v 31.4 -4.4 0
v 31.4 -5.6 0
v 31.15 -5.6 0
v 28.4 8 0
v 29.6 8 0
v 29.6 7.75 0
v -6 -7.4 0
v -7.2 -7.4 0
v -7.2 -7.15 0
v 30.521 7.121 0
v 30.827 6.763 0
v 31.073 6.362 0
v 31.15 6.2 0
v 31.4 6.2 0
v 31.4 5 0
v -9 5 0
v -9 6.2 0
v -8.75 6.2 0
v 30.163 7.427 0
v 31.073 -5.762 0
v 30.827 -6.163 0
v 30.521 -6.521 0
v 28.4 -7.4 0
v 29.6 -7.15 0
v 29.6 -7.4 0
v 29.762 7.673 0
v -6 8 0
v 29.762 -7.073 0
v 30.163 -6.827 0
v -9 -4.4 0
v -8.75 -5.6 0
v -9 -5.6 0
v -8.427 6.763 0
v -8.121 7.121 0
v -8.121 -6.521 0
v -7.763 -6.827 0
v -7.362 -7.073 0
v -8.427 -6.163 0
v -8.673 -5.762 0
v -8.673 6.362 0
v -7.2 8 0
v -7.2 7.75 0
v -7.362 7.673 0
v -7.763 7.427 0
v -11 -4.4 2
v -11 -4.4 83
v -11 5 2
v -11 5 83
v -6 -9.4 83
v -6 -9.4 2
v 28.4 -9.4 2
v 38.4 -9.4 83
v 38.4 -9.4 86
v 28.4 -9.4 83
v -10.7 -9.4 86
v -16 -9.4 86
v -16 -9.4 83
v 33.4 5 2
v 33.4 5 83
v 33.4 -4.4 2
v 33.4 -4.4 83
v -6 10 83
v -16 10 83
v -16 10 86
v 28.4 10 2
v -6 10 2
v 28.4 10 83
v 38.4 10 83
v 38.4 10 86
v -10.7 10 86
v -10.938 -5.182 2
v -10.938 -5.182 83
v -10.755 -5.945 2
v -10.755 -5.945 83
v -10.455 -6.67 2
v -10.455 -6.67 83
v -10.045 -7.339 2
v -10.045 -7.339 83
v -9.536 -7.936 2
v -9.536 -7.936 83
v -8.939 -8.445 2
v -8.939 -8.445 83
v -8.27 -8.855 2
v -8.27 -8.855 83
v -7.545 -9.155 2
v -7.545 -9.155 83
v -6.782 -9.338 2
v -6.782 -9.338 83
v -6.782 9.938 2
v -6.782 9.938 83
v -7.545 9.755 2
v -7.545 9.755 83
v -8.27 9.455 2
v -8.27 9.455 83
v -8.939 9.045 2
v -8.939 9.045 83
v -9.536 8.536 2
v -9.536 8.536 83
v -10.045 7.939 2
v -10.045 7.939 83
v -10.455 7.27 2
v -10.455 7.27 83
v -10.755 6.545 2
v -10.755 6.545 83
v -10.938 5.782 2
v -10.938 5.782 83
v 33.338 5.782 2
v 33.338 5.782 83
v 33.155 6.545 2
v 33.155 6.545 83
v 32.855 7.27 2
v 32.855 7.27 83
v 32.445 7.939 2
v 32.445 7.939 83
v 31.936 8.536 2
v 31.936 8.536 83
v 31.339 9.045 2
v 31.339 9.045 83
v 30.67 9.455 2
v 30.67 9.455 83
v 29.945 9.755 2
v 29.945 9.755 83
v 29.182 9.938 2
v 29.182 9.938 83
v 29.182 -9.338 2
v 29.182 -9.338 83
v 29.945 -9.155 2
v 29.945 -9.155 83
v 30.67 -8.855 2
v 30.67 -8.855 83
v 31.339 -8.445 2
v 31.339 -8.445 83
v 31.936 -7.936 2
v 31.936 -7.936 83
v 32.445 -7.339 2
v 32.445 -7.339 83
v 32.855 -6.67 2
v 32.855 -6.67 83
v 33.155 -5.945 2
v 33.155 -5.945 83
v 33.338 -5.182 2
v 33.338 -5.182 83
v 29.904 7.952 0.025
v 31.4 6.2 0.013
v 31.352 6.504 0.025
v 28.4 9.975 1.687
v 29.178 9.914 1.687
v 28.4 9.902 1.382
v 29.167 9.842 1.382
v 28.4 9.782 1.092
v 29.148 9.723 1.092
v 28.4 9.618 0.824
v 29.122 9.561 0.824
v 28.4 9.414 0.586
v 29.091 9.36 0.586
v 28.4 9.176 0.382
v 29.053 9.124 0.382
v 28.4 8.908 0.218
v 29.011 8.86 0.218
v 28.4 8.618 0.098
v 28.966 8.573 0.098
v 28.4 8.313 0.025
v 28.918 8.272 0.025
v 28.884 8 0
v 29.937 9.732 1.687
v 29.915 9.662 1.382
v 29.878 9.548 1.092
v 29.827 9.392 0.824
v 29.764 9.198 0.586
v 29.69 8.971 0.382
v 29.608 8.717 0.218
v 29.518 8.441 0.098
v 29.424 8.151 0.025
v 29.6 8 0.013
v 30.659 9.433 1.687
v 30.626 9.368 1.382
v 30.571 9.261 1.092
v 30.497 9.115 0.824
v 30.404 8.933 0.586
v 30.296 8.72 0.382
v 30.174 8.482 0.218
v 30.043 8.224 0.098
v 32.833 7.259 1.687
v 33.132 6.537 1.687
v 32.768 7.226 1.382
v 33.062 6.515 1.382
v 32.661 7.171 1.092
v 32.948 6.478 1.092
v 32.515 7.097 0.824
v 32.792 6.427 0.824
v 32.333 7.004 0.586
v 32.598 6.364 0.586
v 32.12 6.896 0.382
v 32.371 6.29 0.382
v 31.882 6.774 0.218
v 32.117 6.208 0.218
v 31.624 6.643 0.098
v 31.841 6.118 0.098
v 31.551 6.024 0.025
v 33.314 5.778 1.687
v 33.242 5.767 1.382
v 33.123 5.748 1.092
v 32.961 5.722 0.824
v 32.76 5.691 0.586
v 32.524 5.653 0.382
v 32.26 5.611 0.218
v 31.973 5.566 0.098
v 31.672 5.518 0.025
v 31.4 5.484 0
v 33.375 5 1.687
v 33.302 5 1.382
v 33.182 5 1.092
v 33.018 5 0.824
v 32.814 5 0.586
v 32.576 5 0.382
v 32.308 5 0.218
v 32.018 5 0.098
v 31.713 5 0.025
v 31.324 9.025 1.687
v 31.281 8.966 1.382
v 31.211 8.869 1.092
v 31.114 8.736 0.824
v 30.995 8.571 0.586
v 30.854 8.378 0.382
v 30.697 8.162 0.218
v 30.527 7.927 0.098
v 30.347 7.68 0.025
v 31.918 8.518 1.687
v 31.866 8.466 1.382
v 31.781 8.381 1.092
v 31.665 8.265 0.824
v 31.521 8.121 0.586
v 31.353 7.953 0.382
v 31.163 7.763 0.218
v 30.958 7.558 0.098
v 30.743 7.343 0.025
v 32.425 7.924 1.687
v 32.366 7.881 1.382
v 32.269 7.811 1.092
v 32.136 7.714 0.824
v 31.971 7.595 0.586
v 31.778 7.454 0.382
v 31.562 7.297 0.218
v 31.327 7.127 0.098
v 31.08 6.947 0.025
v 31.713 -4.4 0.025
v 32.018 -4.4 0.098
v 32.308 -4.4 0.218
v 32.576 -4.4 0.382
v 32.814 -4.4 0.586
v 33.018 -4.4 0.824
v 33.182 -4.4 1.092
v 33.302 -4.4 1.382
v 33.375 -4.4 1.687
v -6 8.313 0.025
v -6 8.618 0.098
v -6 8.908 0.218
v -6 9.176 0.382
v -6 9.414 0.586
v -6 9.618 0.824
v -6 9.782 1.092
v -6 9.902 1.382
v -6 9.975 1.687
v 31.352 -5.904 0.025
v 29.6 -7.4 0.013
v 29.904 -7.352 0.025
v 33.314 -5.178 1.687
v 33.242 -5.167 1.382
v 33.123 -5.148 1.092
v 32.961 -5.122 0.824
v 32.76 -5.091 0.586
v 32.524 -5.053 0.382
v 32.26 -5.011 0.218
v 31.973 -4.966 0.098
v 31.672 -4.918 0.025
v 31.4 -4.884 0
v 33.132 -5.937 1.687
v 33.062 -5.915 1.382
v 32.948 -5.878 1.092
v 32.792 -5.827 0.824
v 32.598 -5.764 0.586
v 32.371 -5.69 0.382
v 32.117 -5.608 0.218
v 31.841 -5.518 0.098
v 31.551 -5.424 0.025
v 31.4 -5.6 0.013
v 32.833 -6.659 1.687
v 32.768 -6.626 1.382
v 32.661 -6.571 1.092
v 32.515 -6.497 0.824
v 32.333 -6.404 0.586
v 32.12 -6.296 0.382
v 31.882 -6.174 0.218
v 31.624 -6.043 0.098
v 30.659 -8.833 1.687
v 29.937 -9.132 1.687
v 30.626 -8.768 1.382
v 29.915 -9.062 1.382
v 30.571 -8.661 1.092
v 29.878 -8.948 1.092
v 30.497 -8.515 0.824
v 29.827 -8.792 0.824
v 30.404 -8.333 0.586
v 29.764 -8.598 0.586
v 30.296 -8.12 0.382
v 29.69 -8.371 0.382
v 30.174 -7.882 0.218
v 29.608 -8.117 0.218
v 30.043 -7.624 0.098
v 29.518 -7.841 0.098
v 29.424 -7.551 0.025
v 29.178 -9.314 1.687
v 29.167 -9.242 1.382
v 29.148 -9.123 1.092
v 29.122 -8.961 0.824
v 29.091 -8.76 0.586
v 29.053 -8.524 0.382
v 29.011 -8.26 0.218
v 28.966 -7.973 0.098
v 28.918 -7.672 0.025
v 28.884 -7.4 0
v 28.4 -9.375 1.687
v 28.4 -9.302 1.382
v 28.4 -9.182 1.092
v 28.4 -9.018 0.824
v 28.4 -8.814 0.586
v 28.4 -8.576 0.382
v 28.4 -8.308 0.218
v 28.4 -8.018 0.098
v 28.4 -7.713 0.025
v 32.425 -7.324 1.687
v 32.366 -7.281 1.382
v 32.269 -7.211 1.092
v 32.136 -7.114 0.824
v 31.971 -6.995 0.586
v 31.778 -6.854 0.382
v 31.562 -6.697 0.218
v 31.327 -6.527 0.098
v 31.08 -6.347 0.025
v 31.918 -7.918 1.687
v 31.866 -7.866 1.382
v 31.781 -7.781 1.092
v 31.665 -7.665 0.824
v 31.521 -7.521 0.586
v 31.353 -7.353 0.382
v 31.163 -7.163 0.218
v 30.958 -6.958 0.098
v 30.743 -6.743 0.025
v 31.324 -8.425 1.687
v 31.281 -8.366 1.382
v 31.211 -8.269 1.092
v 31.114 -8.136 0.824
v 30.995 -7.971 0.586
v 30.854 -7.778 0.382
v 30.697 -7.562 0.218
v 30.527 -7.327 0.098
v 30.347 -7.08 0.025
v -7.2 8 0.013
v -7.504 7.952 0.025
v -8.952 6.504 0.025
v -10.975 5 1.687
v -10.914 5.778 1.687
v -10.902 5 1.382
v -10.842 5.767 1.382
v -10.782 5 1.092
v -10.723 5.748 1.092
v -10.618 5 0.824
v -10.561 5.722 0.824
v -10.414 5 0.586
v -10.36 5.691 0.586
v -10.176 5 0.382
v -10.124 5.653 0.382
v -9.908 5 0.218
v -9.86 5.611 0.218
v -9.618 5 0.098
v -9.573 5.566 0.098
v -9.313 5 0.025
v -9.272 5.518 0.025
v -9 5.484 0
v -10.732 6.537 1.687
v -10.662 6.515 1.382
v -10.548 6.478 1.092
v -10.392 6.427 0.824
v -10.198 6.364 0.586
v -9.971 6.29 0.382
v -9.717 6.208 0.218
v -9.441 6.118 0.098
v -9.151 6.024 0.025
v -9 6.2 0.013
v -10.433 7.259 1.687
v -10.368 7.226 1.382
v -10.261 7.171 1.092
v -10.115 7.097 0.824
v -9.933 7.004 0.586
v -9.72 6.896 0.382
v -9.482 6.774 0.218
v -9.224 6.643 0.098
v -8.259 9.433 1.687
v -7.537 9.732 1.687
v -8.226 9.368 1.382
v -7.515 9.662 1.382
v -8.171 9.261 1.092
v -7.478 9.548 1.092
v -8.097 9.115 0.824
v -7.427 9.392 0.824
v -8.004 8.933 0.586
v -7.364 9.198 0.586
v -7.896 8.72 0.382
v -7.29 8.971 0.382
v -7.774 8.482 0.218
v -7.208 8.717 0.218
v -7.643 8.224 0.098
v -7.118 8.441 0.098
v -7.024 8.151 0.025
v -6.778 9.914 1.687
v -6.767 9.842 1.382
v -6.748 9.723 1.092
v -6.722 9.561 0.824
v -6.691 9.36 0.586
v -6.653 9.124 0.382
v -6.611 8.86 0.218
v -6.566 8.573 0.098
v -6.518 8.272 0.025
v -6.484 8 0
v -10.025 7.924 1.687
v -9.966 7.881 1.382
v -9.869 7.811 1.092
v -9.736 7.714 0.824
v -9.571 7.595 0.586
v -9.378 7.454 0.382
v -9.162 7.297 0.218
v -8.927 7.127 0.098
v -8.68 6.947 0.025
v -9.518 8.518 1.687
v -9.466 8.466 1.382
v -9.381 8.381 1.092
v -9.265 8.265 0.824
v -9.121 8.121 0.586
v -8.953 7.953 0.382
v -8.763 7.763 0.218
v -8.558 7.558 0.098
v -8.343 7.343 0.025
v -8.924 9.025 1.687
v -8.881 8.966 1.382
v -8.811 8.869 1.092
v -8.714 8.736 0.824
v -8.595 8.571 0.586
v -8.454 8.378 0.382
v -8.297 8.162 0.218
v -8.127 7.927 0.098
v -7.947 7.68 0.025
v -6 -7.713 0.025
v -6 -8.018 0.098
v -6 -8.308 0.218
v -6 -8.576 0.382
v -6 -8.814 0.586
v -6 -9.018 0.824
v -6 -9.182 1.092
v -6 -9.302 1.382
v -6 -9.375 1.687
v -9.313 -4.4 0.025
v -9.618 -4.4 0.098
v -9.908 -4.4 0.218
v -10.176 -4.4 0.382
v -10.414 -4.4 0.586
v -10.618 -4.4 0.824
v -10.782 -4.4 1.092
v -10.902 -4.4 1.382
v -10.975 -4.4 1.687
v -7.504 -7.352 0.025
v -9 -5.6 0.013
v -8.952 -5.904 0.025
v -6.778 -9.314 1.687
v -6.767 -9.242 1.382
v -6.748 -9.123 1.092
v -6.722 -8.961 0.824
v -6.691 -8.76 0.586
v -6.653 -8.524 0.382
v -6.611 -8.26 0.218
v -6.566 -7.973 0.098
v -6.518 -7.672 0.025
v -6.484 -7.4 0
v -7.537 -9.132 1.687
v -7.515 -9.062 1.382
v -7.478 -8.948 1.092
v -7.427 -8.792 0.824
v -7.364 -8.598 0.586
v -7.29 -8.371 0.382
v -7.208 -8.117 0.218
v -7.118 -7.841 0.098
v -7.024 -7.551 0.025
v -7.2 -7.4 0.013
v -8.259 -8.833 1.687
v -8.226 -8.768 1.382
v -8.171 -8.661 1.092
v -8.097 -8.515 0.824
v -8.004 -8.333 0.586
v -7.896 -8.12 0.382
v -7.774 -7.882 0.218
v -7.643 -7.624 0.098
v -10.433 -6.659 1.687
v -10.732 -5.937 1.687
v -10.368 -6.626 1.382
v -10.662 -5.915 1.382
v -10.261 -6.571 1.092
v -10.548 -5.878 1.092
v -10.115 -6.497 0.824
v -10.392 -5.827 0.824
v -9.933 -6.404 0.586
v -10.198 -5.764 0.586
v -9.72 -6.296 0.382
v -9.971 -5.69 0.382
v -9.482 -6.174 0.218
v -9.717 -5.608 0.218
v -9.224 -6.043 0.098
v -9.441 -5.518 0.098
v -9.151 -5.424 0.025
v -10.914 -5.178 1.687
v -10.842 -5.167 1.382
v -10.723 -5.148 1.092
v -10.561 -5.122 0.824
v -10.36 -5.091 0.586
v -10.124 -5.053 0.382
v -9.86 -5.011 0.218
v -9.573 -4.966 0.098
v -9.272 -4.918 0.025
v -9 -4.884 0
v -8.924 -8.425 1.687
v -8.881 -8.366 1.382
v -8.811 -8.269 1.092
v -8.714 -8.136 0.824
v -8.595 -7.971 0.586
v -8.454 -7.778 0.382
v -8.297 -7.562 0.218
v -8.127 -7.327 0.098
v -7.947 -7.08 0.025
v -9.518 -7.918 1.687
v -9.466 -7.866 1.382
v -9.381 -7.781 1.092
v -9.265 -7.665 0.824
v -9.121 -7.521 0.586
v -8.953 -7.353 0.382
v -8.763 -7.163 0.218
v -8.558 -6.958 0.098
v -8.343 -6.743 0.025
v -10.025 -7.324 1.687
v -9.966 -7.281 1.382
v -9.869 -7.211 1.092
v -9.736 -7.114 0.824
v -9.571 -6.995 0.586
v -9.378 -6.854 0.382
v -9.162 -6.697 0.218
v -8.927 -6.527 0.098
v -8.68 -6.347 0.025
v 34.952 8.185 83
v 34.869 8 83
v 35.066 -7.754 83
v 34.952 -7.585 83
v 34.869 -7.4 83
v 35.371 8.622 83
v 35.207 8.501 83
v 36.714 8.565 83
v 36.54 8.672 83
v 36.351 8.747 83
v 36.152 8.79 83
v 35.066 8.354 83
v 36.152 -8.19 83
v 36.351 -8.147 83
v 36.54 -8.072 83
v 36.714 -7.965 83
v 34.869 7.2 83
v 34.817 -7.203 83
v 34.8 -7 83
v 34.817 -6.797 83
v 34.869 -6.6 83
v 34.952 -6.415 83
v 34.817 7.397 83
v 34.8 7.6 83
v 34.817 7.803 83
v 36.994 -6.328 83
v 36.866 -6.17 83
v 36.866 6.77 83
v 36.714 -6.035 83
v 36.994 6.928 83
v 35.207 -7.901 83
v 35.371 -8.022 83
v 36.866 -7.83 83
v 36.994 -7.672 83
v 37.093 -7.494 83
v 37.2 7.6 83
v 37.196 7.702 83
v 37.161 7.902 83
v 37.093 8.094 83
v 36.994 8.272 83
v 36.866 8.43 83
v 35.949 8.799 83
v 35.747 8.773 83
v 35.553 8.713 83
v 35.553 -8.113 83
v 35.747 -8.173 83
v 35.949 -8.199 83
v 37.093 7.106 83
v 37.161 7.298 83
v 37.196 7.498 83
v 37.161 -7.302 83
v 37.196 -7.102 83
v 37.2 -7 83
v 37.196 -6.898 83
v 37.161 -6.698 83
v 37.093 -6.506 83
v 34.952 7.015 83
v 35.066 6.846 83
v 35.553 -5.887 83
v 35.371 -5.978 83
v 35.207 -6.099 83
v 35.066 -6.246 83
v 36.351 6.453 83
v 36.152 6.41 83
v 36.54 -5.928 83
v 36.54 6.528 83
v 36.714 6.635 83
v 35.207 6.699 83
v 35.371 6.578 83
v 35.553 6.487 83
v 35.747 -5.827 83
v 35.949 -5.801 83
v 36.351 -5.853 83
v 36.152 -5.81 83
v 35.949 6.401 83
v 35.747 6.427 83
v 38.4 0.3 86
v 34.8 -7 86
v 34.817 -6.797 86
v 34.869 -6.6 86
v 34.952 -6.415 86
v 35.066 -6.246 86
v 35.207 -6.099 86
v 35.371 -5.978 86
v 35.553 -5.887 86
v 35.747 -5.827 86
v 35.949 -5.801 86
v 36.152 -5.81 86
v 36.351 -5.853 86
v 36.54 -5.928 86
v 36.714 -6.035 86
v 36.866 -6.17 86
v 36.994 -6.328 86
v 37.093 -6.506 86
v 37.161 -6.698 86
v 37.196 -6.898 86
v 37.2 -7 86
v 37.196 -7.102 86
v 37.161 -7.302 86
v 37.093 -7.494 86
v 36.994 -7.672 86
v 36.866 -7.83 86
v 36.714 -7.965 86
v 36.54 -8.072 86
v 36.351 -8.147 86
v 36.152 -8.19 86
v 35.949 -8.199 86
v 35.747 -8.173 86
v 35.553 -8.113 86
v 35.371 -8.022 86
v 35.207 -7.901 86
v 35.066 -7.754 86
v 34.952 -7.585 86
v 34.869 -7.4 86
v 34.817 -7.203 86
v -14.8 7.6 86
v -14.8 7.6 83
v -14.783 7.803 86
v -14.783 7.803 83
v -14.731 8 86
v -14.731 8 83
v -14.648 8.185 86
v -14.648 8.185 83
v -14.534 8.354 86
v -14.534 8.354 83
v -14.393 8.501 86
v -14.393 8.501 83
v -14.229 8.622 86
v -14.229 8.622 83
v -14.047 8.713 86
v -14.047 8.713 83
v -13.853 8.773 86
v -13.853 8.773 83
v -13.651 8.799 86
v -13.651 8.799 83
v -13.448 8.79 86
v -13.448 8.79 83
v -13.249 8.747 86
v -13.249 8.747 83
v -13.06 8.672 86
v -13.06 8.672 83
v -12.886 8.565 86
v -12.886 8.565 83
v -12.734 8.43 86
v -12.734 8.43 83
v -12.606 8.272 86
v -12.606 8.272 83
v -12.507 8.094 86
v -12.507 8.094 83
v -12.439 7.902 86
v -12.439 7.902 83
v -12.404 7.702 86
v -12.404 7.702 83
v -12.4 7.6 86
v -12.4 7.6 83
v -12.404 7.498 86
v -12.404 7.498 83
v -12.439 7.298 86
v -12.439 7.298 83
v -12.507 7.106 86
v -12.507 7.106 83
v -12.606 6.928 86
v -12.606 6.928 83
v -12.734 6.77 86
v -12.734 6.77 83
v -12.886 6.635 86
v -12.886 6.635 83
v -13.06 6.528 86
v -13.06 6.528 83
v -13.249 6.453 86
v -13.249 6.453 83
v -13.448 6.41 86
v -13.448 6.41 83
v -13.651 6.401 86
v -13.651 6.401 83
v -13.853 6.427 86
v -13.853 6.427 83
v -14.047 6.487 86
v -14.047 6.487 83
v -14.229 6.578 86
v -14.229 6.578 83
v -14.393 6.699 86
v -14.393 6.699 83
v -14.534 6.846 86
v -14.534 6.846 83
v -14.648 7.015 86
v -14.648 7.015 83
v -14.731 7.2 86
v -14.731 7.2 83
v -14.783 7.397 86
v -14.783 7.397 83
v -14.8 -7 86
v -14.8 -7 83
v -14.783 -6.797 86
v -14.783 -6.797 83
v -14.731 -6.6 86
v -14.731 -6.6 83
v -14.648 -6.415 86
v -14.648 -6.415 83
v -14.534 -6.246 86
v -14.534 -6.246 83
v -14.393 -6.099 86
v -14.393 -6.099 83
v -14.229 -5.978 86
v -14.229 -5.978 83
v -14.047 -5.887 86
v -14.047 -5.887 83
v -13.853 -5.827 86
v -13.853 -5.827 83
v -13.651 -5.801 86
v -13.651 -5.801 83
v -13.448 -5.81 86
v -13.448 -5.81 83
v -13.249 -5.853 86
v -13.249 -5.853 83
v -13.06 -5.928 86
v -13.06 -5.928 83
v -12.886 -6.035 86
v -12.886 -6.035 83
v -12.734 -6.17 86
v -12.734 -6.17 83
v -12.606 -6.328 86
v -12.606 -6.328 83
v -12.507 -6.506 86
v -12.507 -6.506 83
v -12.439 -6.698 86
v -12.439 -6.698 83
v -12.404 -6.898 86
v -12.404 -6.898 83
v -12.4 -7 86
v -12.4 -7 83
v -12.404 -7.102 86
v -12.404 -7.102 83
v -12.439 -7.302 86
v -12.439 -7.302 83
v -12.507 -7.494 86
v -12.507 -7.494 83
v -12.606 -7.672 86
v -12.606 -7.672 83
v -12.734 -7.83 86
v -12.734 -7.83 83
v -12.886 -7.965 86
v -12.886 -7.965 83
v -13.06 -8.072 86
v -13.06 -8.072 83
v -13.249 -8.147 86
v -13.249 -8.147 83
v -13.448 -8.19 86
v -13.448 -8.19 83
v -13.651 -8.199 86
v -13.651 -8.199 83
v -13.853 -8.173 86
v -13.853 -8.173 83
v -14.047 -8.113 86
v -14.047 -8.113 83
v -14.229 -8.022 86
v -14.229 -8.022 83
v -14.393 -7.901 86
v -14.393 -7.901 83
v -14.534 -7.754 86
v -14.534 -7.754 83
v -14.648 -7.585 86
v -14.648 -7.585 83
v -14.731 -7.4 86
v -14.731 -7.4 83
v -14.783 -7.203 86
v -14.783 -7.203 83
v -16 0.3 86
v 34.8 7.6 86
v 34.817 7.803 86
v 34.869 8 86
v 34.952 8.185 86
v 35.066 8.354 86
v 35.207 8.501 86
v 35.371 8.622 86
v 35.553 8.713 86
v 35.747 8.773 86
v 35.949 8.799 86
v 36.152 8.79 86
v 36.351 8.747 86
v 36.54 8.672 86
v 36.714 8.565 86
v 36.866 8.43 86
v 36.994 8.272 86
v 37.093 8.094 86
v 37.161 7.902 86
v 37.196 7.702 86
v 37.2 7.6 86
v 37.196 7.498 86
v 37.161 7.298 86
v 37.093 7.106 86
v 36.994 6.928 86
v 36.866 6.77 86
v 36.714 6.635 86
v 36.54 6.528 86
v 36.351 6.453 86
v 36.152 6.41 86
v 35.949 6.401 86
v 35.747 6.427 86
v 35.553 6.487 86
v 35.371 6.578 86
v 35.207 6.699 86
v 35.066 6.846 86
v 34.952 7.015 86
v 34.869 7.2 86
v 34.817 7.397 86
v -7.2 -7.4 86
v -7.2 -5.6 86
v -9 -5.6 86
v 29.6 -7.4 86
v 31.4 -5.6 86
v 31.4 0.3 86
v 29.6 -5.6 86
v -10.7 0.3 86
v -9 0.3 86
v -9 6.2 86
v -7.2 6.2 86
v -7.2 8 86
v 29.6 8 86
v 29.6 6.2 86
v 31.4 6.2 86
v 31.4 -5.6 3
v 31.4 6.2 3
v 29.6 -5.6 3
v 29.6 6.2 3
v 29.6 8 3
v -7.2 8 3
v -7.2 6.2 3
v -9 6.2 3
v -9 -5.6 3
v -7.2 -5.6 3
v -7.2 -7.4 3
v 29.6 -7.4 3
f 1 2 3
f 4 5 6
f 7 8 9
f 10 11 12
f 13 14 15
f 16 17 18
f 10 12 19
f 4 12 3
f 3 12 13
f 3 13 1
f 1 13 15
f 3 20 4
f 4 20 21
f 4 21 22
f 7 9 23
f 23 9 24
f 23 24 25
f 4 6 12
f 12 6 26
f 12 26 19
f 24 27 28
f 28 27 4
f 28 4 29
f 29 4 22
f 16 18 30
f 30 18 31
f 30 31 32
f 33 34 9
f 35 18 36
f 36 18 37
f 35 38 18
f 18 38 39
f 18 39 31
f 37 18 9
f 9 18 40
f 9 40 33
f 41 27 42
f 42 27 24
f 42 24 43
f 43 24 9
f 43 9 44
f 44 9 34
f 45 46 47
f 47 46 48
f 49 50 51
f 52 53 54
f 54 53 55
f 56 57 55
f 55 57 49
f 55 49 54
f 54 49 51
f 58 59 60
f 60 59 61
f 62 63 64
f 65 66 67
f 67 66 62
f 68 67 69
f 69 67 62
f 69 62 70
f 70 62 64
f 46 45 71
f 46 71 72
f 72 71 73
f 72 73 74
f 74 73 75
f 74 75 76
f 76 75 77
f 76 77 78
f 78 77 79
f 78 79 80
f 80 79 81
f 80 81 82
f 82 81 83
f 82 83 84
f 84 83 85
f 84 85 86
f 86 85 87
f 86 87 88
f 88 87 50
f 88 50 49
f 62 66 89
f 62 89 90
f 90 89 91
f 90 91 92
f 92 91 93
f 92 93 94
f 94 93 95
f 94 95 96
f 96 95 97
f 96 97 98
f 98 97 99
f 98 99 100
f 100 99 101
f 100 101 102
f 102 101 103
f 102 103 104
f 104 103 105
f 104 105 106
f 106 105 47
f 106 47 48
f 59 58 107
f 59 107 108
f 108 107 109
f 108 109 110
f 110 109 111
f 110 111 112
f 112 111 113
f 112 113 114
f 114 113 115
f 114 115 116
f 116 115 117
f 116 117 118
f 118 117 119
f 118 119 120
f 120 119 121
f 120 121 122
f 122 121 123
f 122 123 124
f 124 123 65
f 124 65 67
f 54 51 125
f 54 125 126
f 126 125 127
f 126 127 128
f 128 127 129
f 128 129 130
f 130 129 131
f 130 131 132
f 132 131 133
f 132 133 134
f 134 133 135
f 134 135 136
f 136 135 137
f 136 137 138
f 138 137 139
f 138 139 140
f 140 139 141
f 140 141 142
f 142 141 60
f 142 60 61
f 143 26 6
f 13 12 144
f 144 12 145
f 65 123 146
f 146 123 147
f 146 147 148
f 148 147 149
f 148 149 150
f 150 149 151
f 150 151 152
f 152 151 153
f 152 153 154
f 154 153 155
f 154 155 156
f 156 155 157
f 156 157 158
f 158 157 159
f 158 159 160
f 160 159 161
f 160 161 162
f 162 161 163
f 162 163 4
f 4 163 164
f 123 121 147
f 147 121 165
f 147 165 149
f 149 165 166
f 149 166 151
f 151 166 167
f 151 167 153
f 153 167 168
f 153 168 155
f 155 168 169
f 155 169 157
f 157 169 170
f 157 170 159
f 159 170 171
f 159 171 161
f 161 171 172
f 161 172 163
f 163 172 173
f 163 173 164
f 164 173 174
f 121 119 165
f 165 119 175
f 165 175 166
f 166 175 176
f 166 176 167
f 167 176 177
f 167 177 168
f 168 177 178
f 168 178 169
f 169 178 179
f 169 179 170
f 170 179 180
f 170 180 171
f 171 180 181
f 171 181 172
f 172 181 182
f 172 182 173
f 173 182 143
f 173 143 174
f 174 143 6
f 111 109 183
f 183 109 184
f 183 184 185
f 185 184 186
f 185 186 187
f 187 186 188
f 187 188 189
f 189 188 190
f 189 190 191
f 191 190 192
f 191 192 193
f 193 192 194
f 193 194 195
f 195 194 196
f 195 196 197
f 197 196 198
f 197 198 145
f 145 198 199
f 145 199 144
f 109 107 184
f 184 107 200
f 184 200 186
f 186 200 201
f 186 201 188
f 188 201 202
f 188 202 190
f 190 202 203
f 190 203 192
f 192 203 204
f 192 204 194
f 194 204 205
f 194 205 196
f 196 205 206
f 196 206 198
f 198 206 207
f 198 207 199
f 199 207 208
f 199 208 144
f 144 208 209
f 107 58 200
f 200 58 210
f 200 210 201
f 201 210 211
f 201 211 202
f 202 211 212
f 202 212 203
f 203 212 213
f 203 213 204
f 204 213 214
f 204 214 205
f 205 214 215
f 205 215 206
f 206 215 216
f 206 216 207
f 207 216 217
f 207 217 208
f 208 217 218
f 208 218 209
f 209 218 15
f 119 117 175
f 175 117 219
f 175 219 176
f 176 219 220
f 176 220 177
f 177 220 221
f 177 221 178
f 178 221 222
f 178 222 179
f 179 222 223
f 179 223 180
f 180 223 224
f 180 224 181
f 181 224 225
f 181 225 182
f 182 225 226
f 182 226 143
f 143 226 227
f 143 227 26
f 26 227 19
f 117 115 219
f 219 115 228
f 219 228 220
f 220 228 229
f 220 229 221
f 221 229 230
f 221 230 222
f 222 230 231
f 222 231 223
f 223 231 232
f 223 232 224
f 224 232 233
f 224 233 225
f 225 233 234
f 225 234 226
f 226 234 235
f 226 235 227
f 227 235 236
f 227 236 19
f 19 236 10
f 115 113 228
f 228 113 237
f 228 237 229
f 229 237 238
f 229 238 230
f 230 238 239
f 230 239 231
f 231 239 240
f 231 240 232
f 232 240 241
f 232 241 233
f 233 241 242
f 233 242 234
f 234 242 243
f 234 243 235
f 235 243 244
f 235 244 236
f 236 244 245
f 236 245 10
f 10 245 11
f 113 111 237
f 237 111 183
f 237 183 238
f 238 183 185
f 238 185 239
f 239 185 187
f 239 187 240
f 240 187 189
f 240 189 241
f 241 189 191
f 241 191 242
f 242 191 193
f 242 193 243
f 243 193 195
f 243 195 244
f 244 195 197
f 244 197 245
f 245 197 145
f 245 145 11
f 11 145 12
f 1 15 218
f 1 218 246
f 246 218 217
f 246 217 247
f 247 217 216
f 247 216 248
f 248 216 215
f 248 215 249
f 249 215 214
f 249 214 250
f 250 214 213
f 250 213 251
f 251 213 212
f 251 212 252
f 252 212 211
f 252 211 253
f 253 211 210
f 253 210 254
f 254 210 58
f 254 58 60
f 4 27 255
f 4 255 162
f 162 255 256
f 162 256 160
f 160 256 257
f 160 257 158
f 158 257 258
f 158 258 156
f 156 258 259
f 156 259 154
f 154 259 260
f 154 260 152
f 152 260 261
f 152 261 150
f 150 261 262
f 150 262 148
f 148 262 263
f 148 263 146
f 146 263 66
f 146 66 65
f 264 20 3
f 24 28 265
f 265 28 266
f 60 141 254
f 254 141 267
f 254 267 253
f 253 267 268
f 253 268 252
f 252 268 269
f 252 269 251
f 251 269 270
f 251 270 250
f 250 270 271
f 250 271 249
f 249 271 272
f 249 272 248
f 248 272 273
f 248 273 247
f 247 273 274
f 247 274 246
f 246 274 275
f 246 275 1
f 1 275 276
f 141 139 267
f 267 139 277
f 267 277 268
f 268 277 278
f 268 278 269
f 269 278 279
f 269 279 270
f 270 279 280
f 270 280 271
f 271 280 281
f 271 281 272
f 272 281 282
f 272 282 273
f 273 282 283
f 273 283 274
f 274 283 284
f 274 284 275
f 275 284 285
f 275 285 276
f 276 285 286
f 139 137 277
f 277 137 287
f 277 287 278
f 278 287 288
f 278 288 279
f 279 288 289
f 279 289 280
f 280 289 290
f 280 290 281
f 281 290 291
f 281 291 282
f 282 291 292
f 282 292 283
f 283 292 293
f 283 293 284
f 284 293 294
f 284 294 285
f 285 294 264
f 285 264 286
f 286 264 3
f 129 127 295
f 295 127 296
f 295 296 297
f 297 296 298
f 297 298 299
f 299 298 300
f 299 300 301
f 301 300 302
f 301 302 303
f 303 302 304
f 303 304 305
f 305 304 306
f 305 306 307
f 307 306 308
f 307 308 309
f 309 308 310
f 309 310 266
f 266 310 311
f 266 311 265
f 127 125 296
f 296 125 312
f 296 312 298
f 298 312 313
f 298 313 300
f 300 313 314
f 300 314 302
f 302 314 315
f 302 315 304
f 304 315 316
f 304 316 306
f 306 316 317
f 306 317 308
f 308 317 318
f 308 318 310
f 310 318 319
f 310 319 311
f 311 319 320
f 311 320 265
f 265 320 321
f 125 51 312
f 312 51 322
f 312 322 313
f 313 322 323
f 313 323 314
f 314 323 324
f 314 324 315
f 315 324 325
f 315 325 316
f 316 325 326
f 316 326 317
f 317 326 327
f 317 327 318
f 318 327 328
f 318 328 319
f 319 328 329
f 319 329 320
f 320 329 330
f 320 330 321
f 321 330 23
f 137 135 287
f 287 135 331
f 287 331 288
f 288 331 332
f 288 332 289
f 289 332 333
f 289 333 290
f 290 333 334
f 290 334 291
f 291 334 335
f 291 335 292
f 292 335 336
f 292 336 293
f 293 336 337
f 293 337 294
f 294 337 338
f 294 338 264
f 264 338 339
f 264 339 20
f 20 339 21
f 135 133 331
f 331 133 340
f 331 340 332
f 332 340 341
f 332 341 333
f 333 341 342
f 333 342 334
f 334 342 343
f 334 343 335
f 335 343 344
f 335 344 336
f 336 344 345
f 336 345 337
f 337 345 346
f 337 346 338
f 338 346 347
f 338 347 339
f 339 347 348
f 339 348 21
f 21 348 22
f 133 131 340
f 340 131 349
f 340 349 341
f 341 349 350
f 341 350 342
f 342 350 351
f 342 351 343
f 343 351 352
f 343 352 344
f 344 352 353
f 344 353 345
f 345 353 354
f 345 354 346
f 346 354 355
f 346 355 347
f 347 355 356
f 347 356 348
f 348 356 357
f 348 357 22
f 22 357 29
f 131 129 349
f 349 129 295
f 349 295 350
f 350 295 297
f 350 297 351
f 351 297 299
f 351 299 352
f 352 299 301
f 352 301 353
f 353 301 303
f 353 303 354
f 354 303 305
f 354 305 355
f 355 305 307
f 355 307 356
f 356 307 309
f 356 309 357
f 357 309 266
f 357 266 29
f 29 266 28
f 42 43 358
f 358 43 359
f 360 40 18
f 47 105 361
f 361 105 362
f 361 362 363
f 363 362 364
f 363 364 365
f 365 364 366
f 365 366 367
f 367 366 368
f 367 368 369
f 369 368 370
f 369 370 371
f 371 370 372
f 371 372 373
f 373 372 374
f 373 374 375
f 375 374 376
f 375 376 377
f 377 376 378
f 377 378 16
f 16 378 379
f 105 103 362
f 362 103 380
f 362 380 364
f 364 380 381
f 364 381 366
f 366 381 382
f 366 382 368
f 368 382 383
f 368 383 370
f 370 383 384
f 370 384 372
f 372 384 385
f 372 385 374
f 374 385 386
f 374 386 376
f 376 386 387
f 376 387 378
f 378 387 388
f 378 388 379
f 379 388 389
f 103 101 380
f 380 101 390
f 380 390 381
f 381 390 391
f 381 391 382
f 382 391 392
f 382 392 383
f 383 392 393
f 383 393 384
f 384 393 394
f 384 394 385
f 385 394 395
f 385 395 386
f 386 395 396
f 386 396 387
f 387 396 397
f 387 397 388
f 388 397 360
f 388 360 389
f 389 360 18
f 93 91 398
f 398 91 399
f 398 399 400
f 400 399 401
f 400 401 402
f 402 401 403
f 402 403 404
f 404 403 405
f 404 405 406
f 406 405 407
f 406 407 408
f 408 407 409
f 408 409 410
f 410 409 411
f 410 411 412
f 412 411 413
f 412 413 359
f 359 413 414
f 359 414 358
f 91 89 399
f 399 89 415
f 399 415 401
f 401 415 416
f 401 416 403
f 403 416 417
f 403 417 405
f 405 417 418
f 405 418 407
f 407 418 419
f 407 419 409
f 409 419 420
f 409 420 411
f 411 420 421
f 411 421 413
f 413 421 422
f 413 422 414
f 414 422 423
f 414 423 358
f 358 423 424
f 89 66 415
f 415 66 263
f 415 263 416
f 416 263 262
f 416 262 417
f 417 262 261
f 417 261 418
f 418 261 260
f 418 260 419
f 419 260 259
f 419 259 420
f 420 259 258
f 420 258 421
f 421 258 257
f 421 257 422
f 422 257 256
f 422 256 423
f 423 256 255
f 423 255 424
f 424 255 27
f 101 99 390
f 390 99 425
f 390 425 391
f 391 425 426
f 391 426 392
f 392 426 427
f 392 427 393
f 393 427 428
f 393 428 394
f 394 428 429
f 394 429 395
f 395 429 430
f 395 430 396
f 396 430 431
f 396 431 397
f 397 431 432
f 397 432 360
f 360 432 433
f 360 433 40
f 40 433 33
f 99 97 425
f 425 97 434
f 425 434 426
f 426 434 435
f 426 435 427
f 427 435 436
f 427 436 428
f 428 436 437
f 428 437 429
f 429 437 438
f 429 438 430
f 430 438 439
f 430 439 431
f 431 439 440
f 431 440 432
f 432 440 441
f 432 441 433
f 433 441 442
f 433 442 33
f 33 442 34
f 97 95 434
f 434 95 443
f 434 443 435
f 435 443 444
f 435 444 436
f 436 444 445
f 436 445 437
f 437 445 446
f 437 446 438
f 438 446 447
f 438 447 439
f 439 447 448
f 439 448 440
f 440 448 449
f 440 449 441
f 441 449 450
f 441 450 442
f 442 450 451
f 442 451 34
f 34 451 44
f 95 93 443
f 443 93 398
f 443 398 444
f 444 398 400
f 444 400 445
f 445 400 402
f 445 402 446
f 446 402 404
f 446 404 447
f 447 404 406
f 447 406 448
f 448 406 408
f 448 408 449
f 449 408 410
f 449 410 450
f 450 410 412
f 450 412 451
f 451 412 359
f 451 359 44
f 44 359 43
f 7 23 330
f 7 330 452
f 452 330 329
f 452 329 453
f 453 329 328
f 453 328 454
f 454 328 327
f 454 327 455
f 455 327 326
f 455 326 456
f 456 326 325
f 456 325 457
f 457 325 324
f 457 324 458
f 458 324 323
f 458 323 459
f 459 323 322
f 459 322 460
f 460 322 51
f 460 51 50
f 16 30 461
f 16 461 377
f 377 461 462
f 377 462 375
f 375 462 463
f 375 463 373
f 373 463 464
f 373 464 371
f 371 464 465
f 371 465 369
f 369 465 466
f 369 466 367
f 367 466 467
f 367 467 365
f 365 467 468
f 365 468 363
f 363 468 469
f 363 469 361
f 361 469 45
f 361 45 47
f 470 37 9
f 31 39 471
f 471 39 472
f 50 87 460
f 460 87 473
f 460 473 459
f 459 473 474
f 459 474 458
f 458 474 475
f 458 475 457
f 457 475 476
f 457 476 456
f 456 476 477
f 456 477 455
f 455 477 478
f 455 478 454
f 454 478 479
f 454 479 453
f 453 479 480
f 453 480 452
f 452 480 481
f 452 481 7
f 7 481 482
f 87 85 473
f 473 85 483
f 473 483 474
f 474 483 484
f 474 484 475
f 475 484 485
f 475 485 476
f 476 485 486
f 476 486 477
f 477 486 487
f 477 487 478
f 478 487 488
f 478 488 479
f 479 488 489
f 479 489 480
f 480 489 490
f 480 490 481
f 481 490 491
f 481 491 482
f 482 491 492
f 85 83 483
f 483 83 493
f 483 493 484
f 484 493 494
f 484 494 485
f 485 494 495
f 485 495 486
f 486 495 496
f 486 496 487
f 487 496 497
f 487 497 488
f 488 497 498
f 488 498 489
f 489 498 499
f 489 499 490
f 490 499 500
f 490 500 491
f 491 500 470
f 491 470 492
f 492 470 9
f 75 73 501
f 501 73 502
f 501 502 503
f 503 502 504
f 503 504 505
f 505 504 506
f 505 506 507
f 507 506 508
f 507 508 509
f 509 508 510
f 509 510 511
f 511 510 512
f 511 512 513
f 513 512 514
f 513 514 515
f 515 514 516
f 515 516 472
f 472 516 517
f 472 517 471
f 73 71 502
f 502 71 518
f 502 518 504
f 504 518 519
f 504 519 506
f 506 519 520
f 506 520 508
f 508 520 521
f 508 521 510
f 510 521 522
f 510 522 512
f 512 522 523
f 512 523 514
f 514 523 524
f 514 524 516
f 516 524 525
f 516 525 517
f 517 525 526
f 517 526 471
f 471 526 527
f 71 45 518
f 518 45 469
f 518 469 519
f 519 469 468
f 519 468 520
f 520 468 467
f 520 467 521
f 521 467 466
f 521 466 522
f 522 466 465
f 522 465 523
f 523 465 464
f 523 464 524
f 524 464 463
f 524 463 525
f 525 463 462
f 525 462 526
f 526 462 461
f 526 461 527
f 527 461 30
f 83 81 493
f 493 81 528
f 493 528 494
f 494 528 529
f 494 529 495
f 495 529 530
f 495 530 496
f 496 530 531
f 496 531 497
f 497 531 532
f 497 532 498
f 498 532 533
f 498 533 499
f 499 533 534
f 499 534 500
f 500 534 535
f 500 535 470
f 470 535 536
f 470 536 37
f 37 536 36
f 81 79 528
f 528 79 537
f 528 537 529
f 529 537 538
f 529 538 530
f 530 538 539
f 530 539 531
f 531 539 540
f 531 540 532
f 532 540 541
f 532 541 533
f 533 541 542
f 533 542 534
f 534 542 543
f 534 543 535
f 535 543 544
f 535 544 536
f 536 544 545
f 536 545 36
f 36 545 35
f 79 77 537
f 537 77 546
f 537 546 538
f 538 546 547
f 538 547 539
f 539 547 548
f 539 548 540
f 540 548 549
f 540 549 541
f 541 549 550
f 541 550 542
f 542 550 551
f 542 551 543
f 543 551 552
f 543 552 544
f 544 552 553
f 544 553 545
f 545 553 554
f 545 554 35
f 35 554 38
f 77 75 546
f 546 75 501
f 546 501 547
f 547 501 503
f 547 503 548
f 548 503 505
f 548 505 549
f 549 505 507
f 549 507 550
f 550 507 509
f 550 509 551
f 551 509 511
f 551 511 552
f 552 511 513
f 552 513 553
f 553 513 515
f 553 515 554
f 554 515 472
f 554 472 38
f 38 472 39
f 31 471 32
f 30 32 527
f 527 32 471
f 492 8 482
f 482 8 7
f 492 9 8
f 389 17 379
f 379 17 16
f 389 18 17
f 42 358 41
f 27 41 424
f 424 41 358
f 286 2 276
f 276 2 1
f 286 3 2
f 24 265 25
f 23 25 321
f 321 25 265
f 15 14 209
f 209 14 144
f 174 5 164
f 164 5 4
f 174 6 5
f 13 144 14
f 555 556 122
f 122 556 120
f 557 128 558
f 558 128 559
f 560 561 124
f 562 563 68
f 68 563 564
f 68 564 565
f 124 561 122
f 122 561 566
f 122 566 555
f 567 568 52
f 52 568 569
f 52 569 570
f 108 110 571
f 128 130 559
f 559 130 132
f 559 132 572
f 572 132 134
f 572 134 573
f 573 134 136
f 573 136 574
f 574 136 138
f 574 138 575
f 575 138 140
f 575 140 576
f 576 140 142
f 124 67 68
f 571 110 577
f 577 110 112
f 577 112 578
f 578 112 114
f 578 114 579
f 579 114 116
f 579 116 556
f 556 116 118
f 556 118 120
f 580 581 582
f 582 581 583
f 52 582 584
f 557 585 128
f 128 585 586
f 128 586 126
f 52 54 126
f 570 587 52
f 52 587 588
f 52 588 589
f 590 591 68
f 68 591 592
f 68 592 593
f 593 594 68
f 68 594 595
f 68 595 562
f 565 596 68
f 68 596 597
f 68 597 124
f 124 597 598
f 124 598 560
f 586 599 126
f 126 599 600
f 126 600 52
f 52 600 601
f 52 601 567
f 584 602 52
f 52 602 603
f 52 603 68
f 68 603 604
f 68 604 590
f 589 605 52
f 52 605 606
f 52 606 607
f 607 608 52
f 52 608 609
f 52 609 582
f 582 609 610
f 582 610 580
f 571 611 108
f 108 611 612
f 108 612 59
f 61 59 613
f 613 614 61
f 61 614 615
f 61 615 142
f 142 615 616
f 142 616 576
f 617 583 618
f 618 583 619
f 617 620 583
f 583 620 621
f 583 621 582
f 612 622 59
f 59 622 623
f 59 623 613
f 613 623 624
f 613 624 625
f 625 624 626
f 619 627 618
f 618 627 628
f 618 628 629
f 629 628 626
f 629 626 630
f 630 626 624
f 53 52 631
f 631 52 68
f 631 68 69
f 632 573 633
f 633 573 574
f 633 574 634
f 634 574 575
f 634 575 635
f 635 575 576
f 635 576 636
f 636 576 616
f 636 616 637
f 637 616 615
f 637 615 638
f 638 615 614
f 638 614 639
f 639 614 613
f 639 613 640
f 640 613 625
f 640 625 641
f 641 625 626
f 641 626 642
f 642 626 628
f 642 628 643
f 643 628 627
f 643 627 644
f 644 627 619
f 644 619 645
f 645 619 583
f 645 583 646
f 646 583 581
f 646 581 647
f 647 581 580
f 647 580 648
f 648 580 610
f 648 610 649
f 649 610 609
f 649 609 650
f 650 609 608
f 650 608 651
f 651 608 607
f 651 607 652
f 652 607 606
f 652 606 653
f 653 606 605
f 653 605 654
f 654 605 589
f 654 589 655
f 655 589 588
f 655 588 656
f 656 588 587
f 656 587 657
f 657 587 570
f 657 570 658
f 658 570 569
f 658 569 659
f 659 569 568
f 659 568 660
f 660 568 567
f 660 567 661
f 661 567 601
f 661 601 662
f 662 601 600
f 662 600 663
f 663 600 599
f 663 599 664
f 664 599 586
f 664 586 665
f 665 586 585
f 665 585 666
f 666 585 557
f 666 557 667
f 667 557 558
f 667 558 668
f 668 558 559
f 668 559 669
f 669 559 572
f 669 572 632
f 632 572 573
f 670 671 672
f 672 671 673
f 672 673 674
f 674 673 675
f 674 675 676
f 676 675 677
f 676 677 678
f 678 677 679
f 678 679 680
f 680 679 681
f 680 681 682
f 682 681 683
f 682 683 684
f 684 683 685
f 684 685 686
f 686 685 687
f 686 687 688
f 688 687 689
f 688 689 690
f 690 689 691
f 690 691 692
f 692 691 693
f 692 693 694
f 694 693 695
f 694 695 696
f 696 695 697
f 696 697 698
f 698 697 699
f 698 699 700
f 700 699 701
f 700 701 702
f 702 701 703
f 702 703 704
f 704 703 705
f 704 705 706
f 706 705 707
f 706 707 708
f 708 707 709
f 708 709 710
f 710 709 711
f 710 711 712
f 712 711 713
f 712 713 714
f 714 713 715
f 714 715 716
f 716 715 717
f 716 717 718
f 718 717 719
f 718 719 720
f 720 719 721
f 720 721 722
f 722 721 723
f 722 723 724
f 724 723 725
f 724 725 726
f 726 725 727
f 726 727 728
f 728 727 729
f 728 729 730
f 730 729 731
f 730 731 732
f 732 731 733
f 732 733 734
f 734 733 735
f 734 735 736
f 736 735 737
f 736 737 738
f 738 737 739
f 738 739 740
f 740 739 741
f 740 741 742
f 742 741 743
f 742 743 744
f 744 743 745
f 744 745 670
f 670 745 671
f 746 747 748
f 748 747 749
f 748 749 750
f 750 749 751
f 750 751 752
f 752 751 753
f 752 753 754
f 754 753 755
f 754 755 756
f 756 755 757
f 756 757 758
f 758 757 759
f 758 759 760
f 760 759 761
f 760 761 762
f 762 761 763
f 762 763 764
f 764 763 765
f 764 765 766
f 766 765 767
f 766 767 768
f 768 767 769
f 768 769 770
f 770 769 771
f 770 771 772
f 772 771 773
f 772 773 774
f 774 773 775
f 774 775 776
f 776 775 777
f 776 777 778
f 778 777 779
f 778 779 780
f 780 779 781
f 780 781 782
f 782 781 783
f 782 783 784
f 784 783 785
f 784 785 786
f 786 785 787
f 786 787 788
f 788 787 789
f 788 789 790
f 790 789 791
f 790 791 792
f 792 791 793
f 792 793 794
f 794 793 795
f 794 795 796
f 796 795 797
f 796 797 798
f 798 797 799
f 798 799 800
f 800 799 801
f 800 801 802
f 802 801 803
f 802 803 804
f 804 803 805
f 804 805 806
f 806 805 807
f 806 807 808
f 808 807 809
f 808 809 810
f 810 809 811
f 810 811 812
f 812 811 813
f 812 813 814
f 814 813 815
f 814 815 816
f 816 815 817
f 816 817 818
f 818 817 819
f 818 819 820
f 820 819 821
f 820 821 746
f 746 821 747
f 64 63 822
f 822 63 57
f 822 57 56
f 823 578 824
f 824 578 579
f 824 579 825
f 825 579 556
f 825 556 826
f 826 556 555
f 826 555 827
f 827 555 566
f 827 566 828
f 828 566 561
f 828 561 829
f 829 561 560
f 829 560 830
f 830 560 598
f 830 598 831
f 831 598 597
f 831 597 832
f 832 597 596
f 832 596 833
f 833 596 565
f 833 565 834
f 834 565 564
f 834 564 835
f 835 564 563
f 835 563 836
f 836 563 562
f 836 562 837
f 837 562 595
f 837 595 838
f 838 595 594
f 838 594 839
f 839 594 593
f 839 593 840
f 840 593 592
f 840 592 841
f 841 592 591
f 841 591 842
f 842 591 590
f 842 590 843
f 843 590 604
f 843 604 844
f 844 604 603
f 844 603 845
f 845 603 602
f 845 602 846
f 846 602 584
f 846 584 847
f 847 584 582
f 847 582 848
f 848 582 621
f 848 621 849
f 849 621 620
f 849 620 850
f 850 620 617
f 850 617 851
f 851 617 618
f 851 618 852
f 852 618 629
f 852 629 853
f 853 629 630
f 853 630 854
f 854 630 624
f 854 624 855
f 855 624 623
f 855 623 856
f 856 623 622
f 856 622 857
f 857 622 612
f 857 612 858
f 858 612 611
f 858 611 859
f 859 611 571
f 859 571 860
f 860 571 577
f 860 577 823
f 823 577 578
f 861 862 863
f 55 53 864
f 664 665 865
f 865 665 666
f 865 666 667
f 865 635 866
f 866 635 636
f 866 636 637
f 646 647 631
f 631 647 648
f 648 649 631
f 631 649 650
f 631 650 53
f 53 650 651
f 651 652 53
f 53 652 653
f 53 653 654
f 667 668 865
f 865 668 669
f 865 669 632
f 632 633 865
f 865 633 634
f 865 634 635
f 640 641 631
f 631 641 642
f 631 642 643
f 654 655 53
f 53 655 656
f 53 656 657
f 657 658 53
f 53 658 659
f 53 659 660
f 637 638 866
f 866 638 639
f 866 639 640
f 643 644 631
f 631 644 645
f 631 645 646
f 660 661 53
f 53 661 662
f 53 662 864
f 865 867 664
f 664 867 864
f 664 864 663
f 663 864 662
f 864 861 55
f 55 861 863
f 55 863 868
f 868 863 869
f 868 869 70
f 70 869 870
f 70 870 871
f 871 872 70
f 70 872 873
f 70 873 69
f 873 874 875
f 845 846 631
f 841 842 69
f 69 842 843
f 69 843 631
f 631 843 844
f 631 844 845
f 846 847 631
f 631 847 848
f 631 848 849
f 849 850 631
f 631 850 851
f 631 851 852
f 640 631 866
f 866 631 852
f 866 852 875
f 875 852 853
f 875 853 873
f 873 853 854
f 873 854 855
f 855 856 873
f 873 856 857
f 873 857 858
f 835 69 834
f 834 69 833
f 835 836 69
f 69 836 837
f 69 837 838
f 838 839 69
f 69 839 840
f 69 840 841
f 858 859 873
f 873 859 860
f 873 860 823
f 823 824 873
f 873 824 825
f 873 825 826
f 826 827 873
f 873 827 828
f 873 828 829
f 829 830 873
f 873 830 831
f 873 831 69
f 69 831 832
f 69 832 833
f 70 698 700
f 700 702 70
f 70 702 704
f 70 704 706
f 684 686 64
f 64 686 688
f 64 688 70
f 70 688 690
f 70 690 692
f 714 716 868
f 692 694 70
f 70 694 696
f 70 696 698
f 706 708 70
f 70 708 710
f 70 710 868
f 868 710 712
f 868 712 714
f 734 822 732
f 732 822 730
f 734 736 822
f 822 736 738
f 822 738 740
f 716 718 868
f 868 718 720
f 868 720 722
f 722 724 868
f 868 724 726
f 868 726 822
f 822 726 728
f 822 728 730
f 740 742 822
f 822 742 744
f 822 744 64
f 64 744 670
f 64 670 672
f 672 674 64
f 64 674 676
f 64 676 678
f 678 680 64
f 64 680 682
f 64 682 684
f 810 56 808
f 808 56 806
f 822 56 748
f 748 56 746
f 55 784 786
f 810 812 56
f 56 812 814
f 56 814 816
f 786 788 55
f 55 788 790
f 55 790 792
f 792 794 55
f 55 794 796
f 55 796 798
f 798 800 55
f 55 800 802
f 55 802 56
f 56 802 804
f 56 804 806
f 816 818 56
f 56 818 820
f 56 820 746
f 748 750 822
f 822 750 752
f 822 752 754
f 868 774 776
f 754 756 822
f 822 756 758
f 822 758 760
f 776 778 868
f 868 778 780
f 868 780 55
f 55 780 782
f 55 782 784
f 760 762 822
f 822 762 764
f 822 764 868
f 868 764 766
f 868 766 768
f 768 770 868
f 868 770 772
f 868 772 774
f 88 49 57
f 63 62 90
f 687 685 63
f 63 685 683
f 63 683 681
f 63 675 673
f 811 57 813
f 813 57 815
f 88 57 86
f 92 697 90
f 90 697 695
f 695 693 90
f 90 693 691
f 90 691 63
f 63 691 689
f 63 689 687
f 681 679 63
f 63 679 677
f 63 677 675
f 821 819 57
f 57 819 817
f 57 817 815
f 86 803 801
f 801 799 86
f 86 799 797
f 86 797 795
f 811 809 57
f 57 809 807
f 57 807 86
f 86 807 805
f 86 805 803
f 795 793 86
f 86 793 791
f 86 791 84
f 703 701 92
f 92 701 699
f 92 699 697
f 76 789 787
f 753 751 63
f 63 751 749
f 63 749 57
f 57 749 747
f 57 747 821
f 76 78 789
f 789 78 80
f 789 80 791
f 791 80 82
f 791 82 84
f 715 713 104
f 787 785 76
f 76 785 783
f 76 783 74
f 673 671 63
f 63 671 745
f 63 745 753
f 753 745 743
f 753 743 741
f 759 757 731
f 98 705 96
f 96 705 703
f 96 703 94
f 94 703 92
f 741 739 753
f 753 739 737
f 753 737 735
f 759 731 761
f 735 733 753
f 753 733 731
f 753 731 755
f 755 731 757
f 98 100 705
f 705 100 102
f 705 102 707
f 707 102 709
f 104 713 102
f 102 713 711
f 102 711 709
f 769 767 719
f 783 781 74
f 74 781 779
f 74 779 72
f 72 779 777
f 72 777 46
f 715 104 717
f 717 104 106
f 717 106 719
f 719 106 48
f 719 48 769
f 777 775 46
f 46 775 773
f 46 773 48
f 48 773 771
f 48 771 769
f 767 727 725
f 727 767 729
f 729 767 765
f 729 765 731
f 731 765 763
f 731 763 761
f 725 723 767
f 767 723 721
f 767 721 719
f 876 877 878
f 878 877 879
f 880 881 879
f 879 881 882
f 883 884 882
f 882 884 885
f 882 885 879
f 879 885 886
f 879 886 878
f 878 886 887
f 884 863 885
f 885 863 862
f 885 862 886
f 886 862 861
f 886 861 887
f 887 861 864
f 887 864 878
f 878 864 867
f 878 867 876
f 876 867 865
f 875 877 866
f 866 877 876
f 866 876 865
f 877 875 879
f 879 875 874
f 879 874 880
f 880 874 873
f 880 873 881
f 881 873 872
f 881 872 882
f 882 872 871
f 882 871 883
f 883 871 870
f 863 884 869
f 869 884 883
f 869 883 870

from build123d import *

# Parameters (mm, degrees)
SKETCH_1_W      = 44.4
SKETCH_1_H      = 19.4
EXTRUDE_1_DEPTH = 83
FILLET_6_R      = 5
FILLET_7_R      = 5
FILLET_8_R      = 5
FILLET_9_R      = 5
FILLET_11_R     = 2
EXTRUDE_2_DEPTH = 3
EXTRUDE_START   = 3
SKETCH_3_R      = 1.2
EXTRUDE_3_DEPTH = 3


with BuildPart() as part:
    # 草图1 → 凸台-拉伸1 (new body)
    with BuildSketch(Plane.XY):
        with Locations((11.2, 0.3)):
            Rectangle(SKETCH_1_W, SKETCH_1_H)
        Polygon((-9, 6.2), (-9, -5.6), (-7.2, -5.6), (-7.2, -7.4), (29.6, -7.4), (29.6, -5.6), (31.4, -5.6), (31.4, 6.2), (29.6, 6.2), (29.6, 8), (-7.2, 8), (-7.2, 6.2), align=None, mode=Mode.SUBTRACT)
    extrude(amount=EXTRUDE_1_DEPTH)

    # 圆角6
    fillet_6_edges = [part.edges().sort_by_distance(p)[0] for p in [
        (-11, -9.4, 41.5),
    ]]
    fillet(fillet_6_edges, radius=FILLET_6_R)

    # 圆角7
    fillet_7_edges = [part.edges().sort_by_distance(p)[0] for p in [
        (-11, 10, 41.5),
    ]]
    fillet(fillet_7_edges, radius=FILLET_7_R)

    # 圆角8
    fillet_8_edges = [part.edges().sort_by_distance(p)[0] for p in [
        (33.4, 10, 41.5),
    ]]
    fillet(fillet_8_edges, radius=FILLET_8_R)

    # 圆角9
    fillet_9_edges = [part.edges().sort_by_distance(p)[0] for p in [
        (33.4, -9.4, 41.5),
    ]]
    fillet(fillet_9_edges, radius=FILLET_9_R)

    # 圆角11
    # the kernel refuses this fillet: 2 mm, written as the material it takes off along each edge
    with BuildSketch(Plane(origin=(28.4, -9.4, 0), x_dir=(0, 1, 0), z_dir=(-1, 0, 0)), Plane(origin=(-6, 10, 0), x_dir=(0, -1, 0), z_dir=(1, 0, 0))) as fillet_11_piece_1:
        with BuildLine():
            CenterArc((FILLET_11_R, -FILLET_11_R), FILLET_11_R, 90, 90)
            Line((0, -FILLET_11_R), (0, 0))
            Line((0, 0), (FILLET_11_R, 0))
        make_face()
    extrude(amount=34.4, mode=Mode.SUBTRACT)
    with BuildSketch(Plane(origin=(-6, -4.4, 0), x_dir=(0, -1, 0), z_dir=(1, 0, 0))) as fillet_11_piece_2:
        with BuildLine():
            CenterArc((5 - FILLET_11_R, -FILLET_11_R), FILLET_11_R, 0, 90)
            Line((5, -FILLET_11_R), (5, 0))
            Line((5, 0), (5 - FILLET_11_R, 0))
        make_face()
    revolve(axis=Axis((-6, -4.4, 0), (0, 0, -1)), revolution_arc=90, mode=Mode.SUBTRACT)
    with BuildSketch(Plane(origin=(-11, -4.4, 0), x_dir=(1, 0, 0), z_dir=(0, 1, 0)), Plane(origin=(33.4, 5, 0), x_dir=(-1, 0, 0), z_dir=(0, -1, 0))) as fillet_11_piece_3:
        with BuildLine():
            CenterArc((FILLET_11_R, -FILLET_11_R), FILLET_11_R, 90, 90)
            Line((0, -FILLET_11_R), (0, 0))
            Line((0, 0), (FILLET_11_R, 0))
        make_face()
    extrude(amount=9.4, mode=Mode.SUBTRACT)
    with BuildSketch(Plane(origin=(-6, 5, 0), x_dir=(-1, 0, 0), z_dir=(0, -1, 0))) as fillet_11_piece_4:
        with BuildLine():
            CenterArc((5 - FILLET_11_R, -FILLET_11_R), FILLET_11_R, 0, 90)
            Line((5, -FILLET_11_R), (5, 0))
            Line((5, 0), (5 - FILLET_11_R, 0))
        make_face()
    revolve(axis=Axis((-6, 5, 0), (0, 0, -1)), revolution_arc=90, mode=Mode.SUBTRACT)
    with BuildSketch(Plane(origin=(28.4, 5, 0), x_dir=(0, 1, 0), z_dir=(-1, 0, 0))) as fillet_11_piece_5:
        with BuildLine():
            CenterArc((5 - FILLET_11_R, -FILLET_11_R), FILLET_11_R, 0, 90)
            Line((5, -FILLET_11_R), (5, 0))
            Line((5, 0), (5 - FILLET_11_R, 0))
        make_face()
    revolve(axis=Axis((28.4, 5, 0), (0, 0, -1)), revolution_arc=90, mode=Mode.SUBTRACT)
    with BuildSketch(Plane(origin=(28.4, -4.4, 0), x_dir=(1, 0, 0), z_dir=(0, 1, 0))) as fillet_11_piece_6:
        with BuildLine():
            CenterArc((5 - FILLET_11_R, -FILLET_11_R), FILLET_11_R, 0, 90)
            Line((5, -FILLET_11_R), (5, 0))
            Line((5, 0), (5 - FILLET_11_R, 0))
        make_face()
    revolve(axis=Axis((28.4, -4.4, 0), (0, 0, -1)), revolution_arc=90, mode=Mode.SUBTRACT)

    # 草图2 → 凸台-拉伸2 (add)
    with BuildSketch(Plane(origin=(0, 0, 0), x_dir=(-1, 0, 0), z_dir=(0, 0, -1))):
        Polygon((-31.4, 6.2), (-31.4, -5.6), (-29.6, -5.6), (-29.6, -7.4), (7.2, -7.4), (7.2, -5.6), (9, -5.6), (9, 6.2), (7.2, 6.2), (7.2, 8), (-29.6, 8), (-29.6, 6.2), align=None)
    extrude(amount=-EXTRUDE_2_DEPTH)

    # 草图3 → 凸台-拉伸3 (add)
    # profile 1 of 3: a face of its own
    with BuildSketch(Plane.XY.offset(83).offset(EXTRUDE_START)):
        with BuildLine():
            Line((-6, 10), (-16, 10))
            Line((-16, 10), (-16, -9.4))
            Line((-16, -9.4), (-6, -9.4))
            ThreePointArc((-6, -9.4), (-9.535533906, -7.935533906), (-11, -4.4))
            Line((-11, -4.4), (-11, 5))
            ThreePointArc((-11, 5), (-9.535533906, 8.535533906), (-6, 10))
        make_face()
        with Locations((-13.6, -7)):
            Circle(SKETCH_3_R, mode=Mode.SUBTRACT)
        with Locations((-13.6, 7.6)):
            Circle(SKETCH_3_R, mode=Mode.SUBTRACT)
    # profile 2 of 3: a face of its own
    with BuildSketch(Plane.XY.offset(83).offset(EXTRUDE_START)):
        with BuildLine():
            Line((38.4, 10), (28.4, 10))
            ThreePointArc((28.4, 10), (31.935533906, 8.535533906), (33.4, 5))
            Line((33.4, 5), (33.4, -4.4))
            ThreePointArc((33.4, -4.4), (31.935533906, -7.935533906), (28.4, -9.4))
            Line((28.4, -9.4), (38.4, -9.4))
            Line((38.4, -9.4), (38.4, 10))
        make_face()
        with Locations((36, -7)):
            Circle(SKETCH_3_R, mode=Mode.SUBTRACT)
        with Locations((36, 7.6)):
            Circle(SKETCH_3_R, mode=Mode.SUBTRACT)
    # profile 3 of 3: a face of its own
    with BuildSketch(Plane.XY.offset(83).offset(EXTRUDE_START)):
        with BuildLine():
            ThreePointArc((-11, -4.4), (-9.535533906, -7.935533906), (-6, -9.4))
            Line((-6, -9.4), (28.4, -9.4))
            ThreePointArc((28.4, -9.4), (31.935533906, -7.935533906), (33.4, -4.4))
            Line((33.4, -4.4), (33.4, 5))
            ThreePointArc((33.4, 5), (31.935533906, 8.535533906), (28.4, 10))
            Line((28.4, 10), (-6, 10))
            ThreePointArc((-6, 10), (-9.535533906, 8.535533906), (-11, 5))
            Line((-11, 5), (-11, -4.4))
        make_face()
        Polygon((-7.2, -5.6), (-9, -5.6), (-9, 6.2), (-7.2, 6.2), (-7.2, 8), (29.6, 8), (29.6, 6.2), (31.4, 6.2), (31.4, -5.6), (29.6, -5.6), (29.6, -7.4), (-7.2, -7.4), align=None, mode=Mode.SUBTRACT)
    extrude(amount=-EXTRUDE_3_DEPTH)


solid = part.part
